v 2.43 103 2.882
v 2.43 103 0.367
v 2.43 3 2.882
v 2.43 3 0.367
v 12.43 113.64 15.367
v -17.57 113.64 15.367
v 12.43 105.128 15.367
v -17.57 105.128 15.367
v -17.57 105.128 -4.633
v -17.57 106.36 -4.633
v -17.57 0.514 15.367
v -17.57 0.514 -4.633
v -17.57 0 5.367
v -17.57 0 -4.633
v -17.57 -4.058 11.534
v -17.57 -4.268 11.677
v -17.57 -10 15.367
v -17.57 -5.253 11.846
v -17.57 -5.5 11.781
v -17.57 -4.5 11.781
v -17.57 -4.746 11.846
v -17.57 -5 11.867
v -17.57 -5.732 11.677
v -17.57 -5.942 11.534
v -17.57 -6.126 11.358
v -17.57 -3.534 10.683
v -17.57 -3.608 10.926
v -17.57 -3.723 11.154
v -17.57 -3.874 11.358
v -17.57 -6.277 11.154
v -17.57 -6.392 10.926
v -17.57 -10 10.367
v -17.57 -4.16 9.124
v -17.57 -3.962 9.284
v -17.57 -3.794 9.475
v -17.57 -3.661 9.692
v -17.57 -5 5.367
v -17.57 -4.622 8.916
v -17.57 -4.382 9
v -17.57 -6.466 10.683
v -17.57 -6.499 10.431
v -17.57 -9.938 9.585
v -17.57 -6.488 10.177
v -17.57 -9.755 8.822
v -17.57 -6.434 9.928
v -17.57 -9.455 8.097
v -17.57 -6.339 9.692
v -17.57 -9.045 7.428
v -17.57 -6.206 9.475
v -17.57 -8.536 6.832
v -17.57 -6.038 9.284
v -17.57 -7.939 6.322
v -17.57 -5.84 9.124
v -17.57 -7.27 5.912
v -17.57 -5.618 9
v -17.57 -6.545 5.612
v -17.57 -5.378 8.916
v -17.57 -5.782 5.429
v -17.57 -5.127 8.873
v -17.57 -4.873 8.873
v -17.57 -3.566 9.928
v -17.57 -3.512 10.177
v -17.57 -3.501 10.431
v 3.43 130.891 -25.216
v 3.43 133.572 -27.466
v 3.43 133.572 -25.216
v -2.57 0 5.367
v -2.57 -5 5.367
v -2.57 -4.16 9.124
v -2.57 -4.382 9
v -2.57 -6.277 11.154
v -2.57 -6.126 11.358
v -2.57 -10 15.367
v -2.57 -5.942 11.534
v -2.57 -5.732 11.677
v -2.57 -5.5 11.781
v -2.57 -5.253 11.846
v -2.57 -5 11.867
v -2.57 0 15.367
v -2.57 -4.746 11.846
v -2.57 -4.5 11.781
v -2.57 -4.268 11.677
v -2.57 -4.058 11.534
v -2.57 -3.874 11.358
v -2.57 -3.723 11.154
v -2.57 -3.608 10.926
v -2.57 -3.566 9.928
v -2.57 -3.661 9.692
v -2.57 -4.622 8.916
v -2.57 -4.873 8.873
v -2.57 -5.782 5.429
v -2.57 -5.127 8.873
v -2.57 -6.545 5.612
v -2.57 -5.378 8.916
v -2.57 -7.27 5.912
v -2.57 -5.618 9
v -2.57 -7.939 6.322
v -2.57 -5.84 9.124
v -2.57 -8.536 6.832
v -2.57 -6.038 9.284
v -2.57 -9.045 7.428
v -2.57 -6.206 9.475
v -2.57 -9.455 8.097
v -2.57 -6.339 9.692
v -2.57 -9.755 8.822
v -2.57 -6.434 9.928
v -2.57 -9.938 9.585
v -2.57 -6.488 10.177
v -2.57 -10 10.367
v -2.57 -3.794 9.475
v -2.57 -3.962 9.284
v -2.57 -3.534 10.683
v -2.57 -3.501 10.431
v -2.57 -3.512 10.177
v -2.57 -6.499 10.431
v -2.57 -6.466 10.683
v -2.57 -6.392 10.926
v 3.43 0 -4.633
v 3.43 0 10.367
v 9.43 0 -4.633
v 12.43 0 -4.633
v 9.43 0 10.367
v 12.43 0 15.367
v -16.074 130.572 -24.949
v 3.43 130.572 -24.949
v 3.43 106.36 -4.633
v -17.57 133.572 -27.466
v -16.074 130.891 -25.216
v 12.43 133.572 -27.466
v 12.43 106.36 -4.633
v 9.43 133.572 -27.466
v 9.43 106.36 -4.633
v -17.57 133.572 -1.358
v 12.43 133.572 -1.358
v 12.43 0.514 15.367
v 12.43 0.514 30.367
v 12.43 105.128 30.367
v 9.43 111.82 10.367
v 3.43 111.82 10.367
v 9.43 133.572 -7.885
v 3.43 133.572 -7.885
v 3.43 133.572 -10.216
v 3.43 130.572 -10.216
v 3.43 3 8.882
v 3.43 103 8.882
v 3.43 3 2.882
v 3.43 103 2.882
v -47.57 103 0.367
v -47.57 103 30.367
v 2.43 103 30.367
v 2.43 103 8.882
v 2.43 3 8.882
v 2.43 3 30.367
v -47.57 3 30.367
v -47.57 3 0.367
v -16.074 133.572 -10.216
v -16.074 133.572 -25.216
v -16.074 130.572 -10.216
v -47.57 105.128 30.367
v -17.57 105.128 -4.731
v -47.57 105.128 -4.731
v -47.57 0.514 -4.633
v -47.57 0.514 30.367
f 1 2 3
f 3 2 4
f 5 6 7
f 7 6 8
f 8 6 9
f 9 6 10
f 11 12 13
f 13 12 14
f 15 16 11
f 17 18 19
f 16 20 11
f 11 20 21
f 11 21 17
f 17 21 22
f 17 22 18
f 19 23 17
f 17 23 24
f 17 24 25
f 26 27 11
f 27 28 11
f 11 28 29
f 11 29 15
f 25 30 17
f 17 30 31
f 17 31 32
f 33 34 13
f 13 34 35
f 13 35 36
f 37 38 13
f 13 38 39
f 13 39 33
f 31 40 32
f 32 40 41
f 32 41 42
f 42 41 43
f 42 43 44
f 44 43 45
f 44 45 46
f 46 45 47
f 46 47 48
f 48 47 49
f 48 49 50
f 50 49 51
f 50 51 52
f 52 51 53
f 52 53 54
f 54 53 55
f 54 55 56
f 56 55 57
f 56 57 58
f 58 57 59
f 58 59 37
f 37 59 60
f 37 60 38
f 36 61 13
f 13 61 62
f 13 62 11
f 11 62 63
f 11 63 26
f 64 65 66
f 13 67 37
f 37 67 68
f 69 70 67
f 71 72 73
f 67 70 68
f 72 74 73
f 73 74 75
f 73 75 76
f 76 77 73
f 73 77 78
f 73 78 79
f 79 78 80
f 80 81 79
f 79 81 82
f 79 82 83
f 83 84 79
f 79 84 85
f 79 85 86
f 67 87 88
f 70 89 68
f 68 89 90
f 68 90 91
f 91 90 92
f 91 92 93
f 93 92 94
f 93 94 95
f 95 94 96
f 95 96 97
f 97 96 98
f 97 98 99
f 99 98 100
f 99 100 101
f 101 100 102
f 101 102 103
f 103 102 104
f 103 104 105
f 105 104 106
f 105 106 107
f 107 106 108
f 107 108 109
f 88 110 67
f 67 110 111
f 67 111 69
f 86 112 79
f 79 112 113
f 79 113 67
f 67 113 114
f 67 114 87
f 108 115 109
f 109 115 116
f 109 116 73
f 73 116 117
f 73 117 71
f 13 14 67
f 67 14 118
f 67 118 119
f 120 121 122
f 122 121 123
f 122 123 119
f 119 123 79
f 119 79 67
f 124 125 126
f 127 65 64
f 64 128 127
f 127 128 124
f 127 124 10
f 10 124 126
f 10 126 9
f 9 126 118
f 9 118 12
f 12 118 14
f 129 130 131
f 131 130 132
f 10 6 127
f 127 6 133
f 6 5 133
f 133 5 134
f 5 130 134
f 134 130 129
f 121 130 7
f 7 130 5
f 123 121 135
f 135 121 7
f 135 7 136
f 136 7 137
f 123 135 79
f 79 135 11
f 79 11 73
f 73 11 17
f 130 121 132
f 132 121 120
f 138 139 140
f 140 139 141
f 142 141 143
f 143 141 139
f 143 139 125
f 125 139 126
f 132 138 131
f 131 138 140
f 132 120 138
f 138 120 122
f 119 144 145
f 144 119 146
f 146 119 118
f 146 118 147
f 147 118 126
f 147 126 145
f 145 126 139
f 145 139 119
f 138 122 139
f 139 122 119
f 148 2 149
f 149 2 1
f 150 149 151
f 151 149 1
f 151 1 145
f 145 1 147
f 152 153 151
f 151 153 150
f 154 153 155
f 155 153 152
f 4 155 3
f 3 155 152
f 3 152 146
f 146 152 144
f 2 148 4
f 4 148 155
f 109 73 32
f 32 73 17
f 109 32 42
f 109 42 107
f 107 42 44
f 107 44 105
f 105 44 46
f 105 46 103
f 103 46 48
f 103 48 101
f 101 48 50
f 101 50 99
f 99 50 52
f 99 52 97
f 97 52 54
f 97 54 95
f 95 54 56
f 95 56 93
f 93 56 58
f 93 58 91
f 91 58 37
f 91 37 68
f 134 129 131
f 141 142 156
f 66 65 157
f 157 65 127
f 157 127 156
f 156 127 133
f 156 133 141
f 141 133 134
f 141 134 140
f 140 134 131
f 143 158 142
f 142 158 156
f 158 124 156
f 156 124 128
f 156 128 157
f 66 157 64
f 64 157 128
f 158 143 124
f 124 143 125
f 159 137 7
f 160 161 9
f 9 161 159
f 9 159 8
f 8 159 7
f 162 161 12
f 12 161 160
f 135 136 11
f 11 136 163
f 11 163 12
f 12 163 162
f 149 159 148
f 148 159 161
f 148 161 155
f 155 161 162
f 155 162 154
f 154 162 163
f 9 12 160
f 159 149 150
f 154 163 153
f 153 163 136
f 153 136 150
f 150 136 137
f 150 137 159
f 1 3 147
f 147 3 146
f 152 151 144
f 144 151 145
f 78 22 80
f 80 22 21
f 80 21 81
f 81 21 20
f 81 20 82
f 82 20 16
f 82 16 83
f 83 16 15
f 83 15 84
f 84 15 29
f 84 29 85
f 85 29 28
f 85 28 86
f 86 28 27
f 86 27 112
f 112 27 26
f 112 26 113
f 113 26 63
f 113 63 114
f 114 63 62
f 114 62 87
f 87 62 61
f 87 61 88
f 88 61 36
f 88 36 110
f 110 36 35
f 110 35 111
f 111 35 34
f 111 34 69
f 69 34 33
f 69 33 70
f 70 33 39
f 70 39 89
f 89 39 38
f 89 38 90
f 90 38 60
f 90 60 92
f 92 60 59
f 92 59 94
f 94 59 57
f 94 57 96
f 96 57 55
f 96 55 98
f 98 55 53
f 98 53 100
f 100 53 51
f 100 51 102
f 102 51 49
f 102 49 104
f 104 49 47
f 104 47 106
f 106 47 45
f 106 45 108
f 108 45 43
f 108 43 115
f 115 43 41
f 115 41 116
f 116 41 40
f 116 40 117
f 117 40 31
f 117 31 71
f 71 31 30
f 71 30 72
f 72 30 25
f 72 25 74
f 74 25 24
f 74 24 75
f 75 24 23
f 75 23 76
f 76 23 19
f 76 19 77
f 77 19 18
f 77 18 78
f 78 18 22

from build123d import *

# Parameters (mm, degrees)
SKETCH_1_W           = 30
SKETCH_1_H           = 20
SKETCH_16_W          = 6
SKETCH_16_H          = 15
SKETCH_20_W          = 44.009262039
SKETCH_20_H          = 100
ARDUINO_DEPTH        = 15
SKETCH_36_W          = 15
SKETCH_36_H          = 10
EXTRUDE_1_DEPTH      = 10
CUT_EXTRUDE_25_DEPTH = 15
CUT_EXTRUDE_28_DEPTH = 30
SKETCH_41_W          = 19.503659652
SKETCH_41_H          = 15
CUT_EXTRUDE_29_DEPTH = 3
EXTRUDE_2_DEPTH      = 30
SKETCH_46_W          = 30
SKETCH_46_H          = 100
CUT_EXTRUDE_31_DEPTH = 15
EXTRUDE_3_DEPTH      = 15
SKETCH_48_W          = 6
SKETCH_48_H          = 100
CUT_EXTRUDE_32_DEPTH = 5
SKETCH_49_R          = 1.5
CUT_EXTRUDE_33_DEPTH = 15


with BuildPart() as part:
    # 扫描1: sweep along a path in 草图2
    with BuildLine(Plane(origin=(-2.57, 0, 0), x_dir=(0, 0, -1), z_dir=(1, 0, 0))) as sweep_1_path:
        Line((-5.367132867, 0), (-5.367132867, 110))
        Line((-5.367132867, 110), (19.805856068, 140))
    # 草图1 → 扫描1 (sweep)
    with BuildSketch(Plane(origin=(0, 0, 0), x_dir=(1, 0, 0), z_dir=(0, 1, 0))):
        with Locations((-2.56993007, -5.367132867)):
            Rectangle(SKETCH_1_W, SKETCH_1_H)
    sweep(path=sweep_1_path.line, transition=Transition.RIGHT)

    # 切除-扫描2: sweep along a path in 草图19
    with BuildLine(Plane(origin=(6.43006993, 0, 0), x_dir=(0, 0, -1), z_dir=(1, 0, 0))) as sweep_2_path:
        Line((21.720967176, 138.393030976), (-2.867132867, 109.090074414))
        Line((-2.867132867, 109.090074414), (-2.867132867, 0))
    # 草图16 → 切除-扫描2 (sweep, cut)
    with BuildSketch(Plane(origin=(0, 91.907852742, -77.119845338), x_dir=(1, 0, 0), z_dir=(0, 0.7660444431189769, -0.6427876096865407))):
        with Locations((6.43006993, -72.318099374)):
            Rectangle(SKETCH_16_W, SKETCH_16_H)
    sweep(path=sweep_2_path.line, transition=Transition.RIGHT, mode=Mode.SUBTRACT)

    # 草图20 → arduino (cut)
    with BuildSketch(Plane.XY.offset(15.367132867)):
        with Locations((-19.57456109, 53)):
            Rectangle(SKETCH_20_W, SKETCH_20_H)
    extrude(amount=-ARDUINO_DEPTH, mode=Mode.SUBTRACT)

    # 草图36 → 凸台-拉伸1 (add)
    with BuildSketch(Plane.XZ):
        with Locations((-10.06993007, 10.367132867)):
            Rectangle(SKETCH_36_W, SKETCH_36_H)
    extrude(amount=EXTRUDE_1_DEPTH)

    # 草图37 → 切除-拉伸25 (cut)
    with BuildSketch(Plane.ZY.offset(17.56993007)):
        with BuildLine():
            Line((5.367132867, -10), (5.367132867, -5))
            ThreePointArc((5.367132867, -5), (6.831598961, -8.535533906), (10.367132867, -10))
            Line((10.367132867, -10), (5.367132867, -10))
        make_face()
    extrude(amount=-CUT_EXTRUDE_25_DEPTH, mode=Mode.SUBTRACT)

    # 草图40 → 切除-拉伸28 (cut)
    with BuildSketch(Plane.ZY.offset(17.56993007)):
        Polygon((-27.466300499, 133.572123903), (-1.358154713, 133.572123903), (-12.145411637, 146.427876097), align=None)
    extrude(amount=-CUT_EXTRUDE_28_DEPTH, mode=Mode.SUBTRACT)

    # 草图41 → 切除-拉伸29 (cut)
    with BuildSketch(Plane(origin=(0, 133.572123903, 0), x_dir=(1, 0, 0), z_dir=(0, 1, 0))):
        with Locations((-6.321759896, 17.716300499)):
            Rectangle(SKETCH_41_W, SKETCH_41_H)
    extrude(amount=-CUT_EXTRUDE_29_DEPTH, mode=Mode.SUBTRACT)

    # 草图42 → 凸台-拉伸2 (add)
    with BuildSketch(Plane.ZY.offset(17.56993007)):
        Polygon((-4.730811685, 105.128164413), (-4.632867133, 0.51377094), (15.367132867, 0.51377094), (15.367132867, 105.128164413), align=None)
    extrude(amount=EXTRUDE_2_DEPTH)

    # 草图46 → 切除-拉伸31 (cut)
    with BuildSketch(Plane.XY.offset(15.367132867)):
        with Locations((-32.56993007, 53)):
            Rectangle(SKETCH_46_W, SKETCH_46_H)
    extrude(amount=-CUT_EXTRUDE_31_DEPTH, mode=Mode.SUBTRACT)

    # 草图47 → 凸台-拉伸3 (add)
    with BuildSketch(Plane.XY.offset(15.367132867)):
        Polygon((-47.56993007, 105.128164413), (-47.56993007, 103), (2.43006993, 103), (2.43006993, 3), (-47.56993007, 3), (-47.56993007, 0.51377094), (12.43006993, 0.51377094), (12.43006993, 105.128164413), align=None)
    extrude(amount=EXTRUDE_3_DEPTH)

    # 草图48 → 切除-拉伸32 (cut)
    with BuildSketch(Plane.ZY.offset(-2.43006993)):
        with Locations((5.88172197, 53)):
            Rectangle(SKETCH_48_W, SKETCH_48_H)
    extrude(amount=-CUT_EXTRUDE_32_DEPTH, mode=Mode.SUBTRACT)

    # 草图49 → 切除-拉伸33 (cut)
    with BuildSketch(Plane.ZY.offset(17.56993007)):
        with Locations((10.367132867, -5)):
            Circle(SKETCH_49_R)
    extrude(amount=-CUT_EXTRUDE_33_DEPTH, mode=Mode.SUBTRACT)


solid = part.part
